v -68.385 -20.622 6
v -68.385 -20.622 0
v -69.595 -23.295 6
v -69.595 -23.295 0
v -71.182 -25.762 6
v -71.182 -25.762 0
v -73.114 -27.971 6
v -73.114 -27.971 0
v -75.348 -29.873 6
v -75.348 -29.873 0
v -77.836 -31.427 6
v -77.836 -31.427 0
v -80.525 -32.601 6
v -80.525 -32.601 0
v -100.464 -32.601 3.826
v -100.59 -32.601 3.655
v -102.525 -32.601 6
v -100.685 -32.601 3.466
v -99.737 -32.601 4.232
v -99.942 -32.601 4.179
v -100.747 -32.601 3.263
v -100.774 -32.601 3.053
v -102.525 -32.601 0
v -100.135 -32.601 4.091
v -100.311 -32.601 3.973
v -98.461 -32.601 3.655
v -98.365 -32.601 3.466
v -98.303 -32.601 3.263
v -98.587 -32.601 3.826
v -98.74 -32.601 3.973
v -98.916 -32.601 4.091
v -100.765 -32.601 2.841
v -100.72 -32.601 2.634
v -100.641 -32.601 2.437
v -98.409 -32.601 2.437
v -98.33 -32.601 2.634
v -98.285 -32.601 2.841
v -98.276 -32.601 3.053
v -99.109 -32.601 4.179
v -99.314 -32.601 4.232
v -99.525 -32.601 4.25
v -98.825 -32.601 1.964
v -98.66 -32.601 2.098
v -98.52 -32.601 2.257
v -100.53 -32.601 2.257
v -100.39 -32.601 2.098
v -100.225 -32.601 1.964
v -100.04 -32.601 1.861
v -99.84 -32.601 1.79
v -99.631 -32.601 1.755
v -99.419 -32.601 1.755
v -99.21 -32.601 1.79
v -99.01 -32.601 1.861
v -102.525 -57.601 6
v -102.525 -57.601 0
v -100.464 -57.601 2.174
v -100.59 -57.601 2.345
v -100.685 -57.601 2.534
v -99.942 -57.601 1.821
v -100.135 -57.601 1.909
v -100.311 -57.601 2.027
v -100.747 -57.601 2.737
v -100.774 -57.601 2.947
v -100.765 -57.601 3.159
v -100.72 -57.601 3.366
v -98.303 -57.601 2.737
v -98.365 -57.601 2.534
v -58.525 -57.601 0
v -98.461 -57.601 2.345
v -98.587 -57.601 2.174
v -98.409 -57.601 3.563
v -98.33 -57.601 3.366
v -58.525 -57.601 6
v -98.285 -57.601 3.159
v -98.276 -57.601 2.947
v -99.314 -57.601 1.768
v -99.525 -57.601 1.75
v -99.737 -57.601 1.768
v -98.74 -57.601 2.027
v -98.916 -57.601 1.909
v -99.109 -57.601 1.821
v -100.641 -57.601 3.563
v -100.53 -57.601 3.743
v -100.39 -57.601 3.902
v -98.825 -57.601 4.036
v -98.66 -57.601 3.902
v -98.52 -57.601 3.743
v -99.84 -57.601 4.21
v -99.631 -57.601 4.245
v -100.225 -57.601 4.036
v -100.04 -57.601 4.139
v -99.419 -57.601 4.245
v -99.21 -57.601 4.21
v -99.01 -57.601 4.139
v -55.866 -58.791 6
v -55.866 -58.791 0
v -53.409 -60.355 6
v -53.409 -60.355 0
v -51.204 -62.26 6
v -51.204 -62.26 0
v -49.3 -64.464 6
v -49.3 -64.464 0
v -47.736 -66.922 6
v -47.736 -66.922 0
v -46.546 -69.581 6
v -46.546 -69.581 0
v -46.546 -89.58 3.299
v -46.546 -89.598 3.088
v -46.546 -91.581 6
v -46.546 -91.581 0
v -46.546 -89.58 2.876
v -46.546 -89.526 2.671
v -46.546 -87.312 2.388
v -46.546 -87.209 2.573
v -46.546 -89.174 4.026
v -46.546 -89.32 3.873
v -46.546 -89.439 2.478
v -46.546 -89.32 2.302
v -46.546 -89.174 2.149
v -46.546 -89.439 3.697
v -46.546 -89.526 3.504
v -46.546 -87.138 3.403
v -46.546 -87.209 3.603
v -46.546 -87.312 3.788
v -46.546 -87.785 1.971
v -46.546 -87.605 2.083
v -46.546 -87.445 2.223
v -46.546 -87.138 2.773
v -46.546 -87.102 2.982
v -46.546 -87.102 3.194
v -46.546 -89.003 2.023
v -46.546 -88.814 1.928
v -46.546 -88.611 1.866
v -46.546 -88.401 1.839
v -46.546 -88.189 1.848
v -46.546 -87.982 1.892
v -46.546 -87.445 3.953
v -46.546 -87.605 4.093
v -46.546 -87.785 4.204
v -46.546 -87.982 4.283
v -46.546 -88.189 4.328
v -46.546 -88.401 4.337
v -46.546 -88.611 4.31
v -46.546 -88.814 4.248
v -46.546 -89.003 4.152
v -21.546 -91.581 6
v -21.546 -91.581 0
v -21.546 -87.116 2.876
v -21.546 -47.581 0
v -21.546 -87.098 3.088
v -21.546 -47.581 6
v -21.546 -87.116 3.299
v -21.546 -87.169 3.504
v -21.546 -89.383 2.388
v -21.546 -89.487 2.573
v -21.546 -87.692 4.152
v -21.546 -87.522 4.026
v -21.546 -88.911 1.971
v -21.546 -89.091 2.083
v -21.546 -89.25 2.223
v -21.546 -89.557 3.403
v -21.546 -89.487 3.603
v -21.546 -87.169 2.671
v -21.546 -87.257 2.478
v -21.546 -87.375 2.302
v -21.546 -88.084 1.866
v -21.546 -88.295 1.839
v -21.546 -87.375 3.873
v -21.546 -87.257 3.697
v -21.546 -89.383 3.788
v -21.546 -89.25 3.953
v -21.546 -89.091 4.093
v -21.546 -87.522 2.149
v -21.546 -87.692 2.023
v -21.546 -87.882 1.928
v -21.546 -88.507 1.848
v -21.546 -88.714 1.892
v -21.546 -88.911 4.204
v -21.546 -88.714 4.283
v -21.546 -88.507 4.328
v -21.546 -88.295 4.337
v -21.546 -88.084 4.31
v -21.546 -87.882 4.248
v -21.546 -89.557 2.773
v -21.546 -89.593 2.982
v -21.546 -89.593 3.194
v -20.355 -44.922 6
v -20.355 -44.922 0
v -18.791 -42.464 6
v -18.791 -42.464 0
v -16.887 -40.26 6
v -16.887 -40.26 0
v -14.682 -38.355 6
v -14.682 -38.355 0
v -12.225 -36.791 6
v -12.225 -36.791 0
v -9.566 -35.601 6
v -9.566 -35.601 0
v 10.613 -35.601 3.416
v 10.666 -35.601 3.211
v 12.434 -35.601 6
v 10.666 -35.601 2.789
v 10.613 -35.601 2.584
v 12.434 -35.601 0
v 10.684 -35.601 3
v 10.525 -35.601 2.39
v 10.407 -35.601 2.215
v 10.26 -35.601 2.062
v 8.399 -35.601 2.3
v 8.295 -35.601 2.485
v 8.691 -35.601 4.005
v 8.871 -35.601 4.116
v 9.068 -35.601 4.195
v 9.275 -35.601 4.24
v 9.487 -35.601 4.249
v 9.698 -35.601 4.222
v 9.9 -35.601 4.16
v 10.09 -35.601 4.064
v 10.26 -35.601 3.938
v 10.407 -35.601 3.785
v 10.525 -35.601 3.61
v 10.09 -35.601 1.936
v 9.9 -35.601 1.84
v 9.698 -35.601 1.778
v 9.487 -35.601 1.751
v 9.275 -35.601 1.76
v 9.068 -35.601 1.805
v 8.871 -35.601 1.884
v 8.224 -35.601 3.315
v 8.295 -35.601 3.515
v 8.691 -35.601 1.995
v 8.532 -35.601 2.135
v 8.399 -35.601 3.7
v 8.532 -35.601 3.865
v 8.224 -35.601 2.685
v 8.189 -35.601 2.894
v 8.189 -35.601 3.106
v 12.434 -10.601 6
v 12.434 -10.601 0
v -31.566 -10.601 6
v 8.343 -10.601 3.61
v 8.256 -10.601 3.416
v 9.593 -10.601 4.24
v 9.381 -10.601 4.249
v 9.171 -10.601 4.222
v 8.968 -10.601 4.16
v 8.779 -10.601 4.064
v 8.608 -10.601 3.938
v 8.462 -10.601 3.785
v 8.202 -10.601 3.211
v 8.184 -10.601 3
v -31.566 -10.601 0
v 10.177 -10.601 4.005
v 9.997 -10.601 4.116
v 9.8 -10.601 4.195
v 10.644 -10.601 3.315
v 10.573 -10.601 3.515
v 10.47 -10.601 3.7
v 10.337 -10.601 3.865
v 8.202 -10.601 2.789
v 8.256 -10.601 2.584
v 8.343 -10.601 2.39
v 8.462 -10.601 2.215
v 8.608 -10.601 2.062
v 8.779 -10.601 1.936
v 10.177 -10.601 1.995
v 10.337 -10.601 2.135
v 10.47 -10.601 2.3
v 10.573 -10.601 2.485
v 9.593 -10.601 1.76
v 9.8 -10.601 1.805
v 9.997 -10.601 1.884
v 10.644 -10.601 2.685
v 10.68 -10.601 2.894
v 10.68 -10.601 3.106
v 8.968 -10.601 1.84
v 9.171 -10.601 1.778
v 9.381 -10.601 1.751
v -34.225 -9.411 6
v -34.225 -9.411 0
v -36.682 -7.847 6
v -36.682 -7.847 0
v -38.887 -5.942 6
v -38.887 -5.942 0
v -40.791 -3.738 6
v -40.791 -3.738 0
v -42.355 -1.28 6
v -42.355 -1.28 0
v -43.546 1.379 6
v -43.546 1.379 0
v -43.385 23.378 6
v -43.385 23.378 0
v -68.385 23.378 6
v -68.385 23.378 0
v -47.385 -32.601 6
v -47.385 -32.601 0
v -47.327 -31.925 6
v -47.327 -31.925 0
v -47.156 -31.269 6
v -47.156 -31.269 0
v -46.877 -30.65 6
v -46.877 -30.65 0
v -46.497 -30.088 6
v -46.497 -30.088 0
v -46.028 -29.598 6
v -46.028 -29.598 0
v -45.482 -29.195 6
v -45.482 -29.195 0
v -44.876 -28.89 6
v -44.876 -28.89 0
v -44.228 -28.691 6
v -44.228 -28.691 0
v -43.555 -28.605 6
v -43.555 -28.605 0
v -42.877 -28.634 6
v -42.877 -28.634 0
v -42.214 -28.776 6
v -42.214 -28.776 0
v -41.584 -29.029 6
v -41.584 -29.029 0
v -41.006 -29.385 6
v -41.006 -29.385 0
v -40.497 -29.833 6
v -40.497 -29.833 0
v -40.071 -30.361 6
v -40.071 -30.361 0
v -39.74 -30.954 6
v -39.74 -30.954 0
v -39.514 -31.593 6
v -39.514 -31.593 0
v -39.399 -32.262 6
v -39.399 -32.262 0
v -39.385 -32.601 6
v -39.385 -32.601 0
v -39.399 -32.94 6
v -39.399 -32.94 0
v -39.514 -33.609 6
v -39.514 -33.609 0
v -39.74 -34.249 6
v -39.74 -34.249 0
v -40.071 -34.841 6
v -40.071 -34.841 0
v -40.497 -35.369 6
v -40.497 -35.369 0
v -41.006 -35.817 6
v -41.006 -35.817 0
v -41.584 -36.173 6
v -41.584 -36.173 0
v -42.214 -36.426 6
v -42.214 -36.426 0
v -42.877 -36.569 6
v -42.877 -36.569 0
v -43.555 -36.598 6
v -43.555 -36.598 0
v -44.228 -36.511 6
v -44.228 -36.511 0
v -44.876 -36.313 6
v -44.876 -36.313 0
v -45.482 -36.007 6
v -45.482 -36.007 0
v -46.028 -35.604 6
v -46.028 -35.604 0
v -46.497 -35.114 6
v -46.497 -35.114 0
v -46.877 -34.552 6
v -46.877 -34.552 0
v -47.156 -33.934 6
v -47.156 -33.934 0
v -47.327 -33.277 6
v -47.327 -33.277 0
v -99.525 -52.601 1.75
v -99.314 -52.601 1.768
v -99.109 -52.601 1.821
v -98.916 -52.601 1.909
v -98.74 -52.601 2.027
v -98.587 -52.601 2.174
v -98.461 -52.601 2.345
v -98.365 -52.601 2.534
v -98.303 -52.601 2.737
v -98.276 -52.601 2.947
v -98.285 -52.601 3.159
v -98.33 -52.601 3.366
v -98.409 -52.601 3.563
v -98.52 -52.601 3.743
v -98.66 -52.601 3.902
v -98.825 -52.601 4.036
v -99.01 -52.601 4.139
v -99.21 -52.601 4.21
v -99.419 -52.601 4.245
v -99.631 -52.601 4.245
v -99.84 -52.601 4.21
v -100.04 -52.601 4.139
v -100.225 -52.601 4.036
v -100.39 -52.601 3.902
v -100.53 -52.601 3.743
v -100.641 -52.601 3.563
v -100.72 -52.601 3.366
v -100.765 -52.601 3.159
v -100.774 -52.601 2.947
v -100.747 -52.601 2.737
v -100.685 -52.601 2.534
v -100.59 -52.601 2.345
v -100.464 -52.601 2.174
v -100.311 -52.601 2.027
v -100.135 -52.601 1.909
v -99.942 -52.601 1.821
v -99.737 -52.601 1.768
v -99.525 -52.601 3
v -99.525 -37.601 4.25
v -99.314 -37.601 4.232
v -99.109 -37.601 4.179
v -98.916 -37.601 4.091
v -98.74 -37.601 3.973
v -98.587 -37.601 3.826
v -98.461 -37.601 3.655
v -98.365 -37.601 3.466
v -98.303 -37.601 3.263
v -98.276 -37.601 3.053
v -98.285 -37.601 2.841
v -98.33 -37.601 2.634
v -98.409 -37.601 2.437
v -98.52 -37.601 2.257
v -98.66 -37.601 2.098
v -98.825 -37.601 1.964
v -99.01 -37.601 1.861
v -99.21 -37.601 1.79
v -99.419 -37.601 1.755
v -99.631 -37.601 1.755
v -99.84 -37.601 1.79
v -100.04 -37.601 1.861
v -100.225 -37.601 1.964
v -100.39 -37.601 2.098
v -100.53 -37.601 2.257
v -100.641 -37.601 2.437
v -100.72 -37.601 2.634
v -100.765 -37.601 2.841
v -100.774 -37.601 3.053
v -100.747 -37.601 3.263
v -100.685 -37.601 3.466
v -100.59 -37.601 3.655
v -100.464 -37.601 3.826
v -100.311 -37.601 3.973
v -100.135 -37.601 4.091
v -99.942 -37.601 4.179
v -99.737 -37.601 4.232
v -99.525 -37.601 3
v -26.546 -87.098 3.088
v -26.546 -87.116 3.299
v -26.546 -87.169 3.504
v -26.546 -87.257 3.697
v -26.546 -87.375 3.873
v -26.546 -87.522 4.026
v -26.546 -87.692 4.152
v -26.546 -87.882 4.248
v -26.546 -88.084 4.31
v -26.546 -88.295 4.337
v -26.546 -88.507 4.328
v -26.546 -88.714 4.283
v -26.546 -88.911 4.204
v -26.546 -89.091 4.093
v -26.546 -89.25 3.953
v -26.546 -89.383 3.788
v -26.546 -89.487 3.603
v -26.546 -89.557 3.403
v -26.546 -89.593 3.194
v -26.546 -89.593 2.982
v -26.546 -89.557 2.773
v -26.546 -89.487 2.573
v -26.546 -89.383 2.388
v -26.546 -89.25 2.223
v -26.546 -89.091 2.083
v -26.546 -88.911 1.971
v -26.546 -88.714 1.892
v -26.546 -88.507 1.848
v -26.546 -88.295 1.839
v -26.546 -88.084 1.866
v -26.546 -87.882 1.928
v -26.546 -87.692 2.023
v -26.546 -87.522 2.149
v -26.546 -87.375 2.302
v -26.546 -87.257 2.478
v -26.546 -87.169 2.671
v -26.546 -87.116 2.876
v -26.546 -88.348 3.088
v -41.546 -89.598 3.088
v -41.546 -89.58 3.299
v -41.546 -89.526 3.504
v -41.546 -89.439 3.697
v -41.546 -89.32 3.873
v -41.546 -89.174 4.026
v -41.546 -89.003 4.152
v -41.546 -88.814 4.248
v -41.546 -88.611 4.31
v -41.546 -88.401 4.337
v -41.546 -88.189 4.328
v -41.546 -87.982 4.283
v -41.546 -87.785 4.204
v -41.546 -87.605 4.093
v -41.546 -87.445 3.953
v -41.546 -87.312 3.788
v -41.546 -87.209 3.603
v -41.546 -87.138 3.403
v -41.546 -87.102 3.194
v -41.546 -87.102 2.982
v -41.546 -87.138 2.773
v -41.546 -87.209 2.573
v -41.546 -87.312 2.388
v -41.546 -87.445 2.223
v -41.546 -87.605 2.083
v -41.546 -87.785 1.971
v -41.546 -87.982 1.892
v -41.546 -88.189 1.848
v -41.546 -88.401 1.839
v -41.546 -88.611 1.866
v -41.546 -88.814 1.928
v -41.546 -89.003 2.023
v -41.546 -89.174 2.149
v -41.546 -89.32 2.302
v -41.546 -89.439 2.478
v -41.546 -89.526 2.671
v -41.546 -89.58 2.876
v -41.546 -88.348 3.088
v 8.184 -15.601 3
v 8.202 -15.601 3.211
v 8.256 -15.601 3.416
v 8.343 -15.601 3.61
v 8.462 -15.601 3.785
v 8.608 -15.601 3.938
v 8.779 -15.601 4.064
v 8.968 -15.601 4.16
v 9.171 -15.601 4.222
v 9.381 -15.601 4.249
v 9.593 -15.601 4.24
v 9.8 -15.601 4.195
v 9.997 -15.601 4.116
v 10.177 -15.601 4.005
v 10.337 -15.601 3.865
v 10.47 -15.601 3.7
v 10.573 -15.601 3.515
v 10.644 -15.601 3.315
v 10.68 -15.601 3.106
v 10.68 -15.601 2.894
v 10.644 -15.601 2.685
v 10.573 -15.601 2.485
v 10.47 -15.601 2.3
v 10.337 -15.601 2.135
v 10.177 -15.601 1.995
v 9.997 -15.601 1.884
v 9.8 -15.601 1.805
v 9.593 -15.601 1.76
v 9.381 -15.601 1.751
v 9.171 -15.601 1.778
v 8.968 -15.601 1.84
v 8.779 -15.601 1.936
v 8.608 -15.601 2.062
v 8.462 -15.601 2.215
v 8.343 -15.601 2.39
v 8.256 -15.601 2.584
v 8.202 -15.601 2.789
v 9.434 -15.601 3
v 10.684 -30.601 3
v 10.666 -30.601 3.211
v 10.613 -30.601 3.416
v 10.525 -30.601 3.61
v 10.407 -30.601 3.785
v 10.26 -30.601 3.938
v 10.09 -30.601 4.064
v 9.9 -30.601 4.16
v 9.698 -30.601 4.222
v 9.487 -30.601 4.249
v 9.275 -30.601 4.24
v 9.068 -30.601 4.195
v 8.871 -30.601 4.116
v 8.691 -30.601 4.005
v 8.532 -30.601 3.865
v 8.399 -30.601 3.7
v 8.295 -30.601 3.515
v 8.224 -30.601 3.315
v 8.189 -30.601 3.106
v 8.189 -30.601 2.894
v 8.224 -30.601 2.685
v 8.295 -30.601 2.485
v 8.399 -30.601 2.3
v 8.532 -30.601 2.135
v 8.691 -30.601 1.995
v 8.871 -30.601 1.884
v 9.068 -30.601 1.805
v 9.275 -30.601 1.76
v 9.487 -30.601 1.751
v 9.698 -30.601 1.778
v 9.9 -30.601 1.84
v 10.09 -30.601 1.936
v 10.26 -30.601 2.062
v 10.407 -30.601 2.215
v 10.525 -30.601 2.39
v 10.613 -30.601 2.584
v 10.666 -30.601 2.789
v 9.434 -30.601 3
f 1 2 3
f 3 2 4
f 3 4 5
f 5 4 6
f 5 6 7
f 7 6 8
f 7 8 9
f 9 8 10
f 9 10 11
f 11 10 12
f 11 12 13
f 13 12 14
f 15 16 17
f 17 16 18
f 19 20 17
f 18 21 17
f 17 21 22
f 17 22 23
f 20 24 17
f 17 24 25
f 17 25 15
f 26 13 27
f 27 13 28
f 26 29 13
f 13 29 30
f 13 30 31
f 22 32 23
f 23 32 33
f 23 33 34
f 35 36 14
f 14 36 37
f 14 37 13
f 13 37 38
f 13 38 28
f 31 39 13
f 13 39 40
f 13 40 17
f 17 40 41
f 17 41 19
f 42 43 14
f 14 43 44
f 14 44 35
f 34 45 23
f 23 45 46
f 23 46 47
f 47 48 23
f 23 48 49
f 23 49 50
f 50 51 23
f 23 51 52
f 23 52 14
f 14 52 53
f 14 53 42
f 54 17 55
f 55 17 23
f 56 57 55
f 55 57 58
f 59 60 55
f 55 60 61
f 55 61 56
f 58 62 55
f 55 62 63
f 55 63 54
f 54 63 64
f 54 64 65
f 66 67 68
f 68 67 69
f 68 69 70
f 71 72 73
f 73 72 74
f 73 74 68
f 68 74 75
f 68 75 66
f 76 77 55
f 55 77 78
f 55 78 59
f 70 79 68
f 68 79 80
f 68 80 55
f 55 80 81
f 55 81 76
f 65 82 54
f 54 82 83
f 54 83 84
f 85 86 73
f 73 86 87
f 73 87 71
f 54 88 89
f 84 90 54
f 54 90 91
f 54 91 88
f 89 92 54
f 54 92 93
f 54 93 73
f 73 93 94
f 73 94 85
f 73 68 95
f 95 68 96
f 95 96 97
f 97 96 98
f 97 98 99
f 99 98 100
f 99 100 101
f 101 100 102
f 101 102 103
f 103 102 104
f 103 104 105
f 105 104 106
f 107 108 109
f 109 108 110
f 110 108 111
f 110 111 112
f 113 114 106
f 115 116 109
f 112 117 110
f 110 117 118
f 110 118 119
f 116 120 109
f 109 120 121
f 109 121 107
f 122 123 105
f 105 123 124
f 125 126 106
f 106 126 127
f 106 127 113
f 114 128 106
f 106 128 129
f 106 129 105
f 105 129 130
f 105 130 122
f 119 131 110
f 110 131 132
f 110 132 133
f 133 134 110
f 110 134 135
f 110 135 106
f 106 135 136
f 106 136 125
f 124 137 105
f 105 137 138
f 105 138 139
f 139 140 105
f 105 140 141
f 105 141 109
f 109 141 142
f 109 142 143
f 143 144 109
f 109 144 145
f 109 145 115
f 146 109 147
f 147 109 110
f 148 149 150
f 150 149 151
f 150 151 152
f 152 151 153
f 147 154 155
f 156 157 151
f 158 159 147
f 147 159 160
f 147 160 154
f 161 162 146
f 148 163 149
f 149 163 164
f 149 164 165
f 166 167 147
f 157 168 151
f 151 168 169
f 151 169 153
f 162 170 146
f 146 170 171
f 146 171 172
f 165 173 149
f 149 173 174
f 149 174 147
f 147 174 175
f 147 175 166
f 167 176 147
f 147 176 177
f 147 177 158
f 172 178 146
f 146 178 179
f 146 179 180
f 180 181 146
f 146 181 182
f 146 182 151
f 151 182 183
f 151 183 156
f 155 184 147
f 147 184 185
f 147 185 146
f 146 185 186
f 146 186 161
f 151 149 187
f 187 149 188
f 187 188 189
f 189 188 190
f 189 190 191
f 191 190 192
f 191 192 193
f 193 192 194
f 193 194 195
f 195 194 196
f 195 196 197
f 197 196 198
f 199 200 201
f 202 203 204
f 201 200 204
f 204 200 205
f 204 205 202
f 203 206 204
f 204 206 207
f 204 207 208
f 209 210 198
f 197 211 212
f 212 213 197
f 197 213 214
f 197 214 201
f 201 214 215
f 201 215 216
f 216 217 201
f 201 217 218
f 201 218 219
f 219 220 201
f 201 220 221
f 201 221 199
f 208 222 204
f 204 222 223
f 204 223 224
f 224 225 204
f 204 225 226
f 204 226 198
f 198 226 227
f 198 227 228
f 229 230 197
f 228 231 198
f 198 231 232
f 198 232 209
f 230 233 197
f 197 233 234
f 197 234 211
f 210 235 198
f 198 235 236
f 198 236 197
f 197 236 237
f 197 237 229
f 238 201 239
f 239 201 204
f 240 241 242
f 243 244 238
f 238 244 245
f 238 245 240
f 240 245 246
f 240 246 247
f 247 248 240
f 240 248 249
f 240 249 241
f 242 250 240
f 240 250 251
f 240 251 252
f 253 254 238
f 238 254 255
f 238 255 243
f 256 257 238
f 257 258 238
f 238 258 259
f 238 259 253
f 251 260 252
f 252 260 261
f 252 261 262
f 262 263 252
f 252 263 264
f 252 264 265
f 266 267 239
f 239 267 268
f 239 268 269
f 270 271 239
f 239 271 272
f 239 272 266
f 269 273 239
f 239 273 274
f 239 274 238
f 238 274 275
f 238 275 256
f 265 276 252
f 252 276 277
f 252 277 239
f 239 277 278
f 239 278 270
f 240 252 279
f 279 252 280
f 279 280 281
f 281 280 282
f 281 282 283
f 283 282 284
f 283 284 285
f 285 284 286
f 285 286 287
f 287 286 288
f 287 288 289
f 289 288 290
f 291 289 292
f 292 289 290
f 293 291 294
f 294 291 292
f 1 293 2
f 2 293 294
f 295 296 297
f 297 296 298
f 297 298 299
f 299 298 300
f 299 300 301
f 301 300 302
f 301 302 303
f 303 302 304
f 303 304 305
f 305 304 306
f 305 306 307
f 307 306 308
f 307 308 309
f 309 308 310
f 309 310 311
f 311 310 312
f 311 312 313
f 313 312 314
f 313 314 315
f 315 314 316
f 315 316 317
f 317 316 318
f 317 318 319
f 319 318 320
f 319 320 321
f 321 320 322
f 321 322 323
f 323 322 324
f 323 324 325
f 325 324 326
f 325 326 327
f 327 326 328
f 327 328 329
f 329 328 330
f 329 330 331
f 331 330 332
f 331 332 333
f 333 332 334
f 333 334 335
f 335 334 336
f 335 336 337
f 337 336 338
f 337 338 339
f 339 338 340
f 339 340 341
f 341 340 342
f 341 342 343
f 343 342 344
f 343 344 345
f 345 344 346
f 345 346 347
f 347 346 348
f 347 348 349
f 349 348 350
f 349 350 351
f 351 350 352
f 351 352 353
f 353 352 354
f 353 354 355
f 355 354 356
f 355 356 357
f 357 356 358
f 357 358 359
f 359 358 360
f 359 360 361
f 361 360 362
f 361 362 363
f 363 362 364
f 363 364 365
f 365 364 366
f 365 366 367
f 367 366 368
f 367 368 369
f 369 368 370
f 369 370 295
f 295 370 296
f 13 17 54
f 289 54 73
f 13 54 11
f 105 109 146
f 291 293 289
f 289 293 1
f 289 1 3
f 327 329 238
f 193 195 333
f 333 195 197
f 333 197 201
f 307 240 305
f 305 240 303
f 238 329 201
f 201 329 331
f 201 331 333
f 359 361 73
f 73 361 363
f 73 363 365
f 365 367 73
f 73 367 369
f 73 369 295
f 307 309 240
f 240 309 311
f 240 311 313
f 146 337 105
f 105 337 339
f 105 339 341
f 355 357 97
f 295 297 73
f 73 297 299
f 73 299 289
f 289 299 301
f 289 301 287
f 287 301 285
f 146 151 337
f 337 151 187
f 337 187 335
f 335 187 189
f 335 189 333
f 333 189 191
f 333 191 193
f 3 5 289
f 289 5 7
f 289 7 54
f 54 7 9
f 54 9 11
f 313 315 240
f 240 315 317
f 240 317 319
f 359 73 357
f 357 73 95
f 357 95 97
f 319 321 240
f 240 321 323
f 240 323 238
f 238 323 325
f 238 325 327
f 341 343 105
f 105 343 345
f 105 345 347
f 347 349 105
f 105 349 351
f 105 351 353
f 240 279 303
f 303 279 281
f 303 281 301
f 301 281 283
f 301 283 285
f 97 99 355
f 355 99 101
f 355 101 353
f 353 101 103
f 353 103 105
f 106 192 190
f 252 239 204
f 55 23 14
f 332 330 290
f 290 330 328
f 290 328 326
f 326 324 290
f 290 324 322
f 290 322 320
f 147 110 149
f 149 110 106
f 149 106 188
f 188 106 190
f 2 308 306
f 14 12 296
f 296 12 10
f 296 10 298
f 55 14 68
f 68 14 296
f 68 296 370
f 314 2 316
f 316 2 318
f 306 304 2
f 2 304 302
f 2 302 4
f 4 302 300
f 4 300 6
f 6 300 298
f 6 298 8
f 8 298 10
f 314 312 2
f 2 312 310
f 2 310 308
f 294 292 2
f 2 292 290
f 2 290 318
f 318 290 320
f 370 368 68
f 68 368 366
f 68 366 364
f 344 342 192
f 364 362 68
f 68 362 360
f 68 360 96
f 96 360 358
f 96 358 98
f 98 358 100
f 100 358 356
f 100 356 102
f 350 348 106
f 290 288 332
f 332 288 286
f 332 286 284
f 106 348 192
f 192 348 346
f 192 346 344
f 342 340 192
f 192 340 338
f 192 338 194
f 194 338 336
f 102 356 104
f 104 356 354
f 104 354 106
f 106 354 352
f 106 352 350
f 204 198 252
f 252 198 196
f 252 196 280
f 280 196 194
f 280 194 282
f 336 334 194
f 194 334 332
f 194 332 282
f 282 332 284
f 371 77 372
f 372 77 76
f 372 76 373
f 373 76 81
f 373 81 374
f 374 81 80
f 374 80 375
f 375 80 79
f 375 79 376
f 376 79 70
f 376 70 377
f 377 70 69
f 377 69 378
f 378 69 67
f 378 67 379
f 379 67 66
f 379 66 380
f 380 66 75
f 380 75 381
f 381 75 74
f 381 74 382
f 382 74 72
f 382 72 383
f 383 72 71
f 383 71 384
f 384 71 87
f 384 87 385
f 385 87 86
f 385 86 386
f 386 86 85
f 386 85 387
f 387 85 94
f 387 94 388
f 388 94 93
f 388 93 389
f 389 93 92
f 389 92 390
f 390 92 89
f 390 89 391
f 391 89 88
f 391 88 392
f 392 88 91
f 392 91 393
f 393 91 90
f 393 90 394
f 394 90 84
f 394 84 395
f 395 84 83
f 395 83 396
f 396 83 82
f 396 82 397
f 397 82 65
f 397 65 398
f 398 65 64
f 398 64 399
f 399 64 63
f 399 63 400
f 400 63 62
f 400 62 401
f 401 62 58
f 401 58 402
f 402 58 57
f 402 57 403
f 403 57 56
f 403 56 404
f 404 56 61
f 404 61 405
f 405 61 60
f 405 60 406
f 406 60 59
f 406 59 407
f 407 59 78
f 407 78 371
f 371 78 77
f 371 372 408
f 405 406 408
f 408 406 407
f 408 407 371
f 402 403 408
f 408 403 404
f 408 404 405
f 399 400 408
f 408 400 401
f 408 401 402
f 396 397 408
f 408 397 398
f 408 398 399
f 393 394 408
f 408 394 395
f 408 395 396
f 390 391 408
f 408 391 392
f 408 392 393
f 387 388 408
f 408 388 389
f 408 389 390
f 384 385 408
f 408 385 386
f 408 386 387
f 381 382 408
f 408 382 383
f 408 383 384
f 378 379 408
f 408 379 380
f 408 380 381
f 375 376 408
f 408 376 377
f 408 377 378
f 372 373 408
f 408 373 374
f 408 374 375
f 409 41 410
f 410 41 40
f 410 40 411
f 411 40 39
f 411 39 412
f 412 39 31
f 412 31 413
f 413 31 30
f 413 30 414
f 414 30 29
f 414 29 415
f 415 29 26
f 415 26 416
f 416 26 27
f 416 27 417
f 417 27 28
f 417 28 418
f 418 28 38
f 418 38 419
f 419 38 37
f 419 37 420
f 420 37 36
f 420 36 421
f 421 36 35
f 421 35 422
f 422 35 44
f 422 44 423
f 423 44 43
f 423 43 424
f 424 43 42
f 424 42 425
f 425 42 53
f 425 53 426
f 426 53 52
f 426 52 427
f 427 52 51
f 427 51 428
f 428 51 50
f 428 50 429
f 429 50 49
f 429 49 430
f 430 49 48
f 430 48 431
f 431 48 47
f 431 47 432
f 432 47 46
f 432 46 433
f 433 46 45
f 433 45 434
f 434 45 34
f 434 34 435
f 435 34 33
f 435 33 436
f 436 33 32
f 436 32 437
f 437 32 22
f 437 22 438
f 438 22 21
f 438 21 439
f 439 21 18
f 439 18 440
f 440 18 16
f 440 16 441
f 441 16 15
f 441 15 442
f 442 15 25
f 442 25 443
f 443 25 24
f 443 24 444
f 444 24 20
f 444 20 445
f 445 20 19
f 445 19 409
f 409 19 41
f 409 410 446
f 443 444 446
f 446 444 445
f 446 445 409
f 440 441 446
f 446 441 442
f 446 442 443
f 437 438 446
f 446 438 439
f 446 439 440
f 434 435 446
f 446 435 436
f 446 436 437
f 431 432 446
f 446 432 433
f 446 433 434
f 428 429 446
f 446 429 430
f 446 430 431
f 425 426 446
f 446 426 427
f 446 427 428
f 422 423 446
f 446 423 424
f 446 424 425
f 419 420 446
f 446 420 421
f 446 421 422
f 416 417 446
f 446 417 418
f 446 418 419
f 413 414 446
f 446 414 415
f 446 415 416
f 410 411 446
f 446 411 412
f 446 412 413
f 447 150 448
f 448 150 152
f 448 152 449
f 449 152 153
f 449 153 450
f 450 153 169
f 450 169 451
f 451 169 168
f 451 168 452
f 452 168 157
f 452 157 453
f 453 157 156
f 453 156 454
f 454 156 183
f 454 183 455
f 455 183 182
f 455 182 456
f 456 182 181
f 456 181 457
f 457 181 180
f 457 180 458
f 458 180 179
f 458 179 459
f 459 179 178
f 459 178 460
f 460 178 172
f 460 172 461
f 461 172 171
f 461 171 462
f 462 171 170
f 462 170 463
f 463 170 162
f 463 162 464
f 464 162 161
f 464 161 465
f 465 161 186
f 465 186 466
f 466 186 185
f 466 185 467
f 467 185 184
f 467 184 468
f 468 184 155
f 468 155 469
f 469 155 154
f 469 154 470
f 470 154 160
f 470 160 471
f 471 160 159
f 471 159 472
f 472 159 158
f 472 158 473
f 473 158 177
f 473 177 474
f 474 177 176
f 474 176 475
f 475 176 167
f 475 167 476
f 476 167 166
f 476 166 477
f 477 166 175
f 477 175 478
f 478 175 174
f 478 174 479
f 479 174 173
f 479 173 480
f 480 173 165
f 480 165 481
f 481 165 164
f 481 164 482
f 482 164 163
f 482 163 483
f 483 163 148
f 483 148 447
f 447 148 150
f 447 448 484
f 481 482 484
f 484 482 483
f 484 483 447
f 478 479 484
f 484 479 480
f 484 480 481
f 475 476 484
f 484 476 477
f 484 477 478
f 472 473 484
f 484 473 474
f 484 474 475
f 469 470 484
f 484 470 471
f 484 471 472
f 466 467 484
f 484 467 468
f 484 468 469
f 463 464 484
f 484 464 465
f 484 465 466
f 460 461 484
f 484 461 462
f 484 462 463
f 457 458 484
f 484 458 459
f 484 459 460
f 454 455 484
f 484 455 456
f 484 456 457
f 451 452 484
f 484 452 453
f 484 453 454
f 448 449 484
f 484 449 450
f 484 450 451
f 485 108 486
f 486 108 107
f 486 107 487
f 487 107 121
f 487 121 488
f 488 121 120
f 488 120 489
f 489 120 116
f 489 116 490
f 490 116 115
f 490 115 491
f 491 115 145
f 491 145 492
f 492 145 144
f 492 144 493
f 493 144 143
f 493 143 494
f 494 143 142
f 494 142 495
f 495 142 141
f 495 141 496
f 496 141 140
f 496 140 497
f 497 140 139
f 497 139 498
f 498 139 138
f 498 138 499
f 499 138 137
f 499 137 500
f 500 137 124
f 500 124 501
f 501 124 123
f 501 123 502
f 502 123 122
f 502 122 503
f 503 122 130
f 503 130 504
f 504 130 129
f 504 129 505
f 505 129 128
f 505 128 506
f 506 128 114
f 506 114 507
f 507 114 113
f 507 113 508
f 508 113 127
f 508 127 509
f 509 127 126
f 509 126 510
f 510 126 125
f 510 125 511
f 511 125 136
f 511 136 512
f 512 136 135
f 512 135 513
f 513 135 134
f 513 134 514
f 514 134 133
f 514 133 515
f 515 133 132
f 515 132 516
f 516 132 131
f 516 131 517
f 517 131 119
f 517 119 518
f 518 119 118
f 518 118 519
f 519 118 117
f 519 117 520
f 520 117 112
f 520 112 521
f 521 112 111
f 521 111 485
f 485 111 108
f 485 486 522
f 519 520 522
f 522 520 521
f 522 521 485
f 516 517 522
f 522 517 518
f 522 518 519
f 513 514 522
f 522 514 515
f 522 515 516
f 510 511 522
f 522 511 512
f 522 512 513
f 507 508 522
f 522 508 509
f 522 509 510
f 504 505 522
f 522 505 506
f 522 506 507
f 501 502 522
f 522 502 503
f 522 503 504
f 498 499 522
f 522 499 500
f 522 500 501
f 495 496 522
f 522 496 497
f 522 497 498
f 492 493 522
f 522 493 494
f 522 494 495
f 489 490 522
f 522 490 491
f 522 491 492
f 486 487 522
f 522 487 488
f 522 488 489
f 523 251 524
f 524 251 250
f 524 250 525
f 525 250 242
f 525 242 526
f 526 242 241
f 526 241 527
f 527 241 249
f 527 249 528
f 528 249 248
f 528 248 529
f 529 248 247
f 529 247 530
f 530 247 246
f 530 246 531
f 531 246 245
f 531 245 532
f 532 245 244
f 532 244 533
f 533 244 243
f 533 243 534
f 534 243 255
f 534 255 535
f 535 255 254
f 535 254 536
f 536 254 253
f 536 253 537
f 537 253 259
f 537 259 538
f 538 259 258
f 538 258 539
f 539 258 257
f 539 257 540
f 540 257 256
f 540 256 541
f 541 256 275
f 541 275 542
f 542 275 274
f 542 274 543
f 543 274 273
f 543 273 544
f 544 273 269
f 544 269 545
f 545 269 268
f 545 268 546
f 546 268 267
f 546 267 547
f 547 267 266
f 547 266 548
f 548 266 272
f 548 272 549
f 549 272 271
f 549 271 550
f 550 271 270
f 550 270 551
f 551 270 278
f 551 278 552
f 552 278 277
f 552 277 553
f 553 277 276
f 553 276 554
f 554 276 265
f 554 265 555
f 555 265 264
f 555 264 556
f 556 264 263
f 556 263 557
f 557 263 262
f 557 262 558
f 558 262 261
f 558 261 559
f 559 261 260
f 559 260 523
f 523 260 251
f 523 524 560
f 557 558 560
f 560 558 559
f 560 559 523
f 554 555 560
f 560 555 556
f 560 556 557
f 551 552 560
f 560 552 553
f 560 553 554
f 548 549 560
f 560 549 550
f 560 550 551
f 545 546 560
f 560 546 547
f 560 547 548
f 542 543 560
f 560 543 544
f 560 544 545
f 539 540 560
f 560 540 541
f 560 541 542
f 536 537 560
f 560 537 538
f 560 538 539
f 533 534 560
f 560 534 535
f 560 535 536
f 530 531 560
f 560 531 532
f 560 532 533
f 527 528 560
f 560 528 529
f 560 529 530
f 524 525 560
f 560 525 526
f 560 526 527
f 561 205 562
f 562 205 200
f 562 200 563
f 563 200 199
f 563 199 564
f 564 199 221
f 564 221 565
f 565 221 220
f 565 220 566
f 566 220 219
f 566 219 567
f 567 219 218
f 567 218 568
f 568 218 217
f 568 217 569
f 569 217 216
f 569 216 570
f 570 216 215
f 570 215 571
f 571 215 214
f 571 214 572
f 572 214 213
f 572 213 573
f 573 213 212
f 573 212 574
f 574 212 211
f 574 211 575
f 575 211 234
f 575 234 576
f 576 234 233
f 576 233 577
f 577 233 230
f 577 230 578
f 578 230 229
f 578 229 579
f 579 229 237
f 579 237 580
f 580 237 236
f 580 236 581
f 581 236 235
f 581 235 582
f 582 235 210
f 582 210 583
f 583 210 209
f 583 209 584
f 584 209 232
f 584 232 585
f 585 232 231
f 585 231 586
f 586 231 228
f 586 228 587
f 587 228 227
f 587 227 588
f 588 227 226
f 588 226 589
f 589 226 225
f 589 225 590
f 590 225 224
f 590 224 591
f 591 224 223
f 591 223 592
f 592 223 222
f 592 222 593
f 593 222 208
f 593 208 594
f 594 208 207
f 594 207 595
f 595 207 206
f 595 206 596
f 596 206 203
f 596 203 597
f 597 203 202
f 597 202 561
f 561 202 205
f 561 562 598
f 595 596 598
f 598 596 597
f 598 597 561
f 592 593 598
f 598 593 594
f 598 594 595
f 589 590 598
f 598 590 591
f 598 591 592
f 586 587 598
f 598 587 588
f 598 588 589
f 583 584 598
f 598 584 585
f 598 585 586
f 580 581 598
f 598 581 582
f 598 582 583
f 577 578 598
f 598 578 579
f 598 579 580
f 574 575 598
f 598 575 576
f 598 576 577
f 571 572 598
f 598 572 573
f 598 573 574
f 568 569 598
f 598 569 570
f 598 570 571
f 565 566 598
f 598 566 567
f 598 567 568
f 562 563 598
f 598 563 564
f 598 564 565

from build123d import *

# Parameters (mm, degrees)
SKETCH_2_R          = 4
EXTRUDE_1_DEPTH     = 6
SKETCH_3_R          = 1.25
CUT_EXTRUDE_1_DEPTH = 5
CUT_EXTRUDE_START   = -5
SKETCH_4_R          = 1.25
CUT_EXTRUDE_2_DEPTH = 5
SKETCH_5_R          = 1.25
CUT_EXTRUDE_3_DEPTH = 5
SKETCH_6_R          = 1.25
CUT_EXTRUDE_4_DEPTH = 5
SKETCH_8_R          = 1.25
CUT_EXTRUDE_5_DEPTH = 5
SKETCH_9_R          = 1.25
CUT_EXTRUDE_6_DEPTH = 5


with BuildPart() as part:
    # 스케치2 → 보스-돌출1 (new body)
    with BuildSketch(Plane.XY):
        with BuildLine():
            Line((-102.525284978, -57.601148056), (-102.525284978, -32.601148056))
            Line((-102.525284978, -32.601148056), (-80.525284978, -32.601148056))
            ThreePointArc((-80.525284978, -32.601148056), (-73.11411316, -27.970582536), (-68.384824454, -20.622015799))
            Line((-68.384824454, -20.622015799), (-68.384824454, 23.377984201))
            Line((-68.384824454, 23.377984201), (-43.384824454, 23.377984201))
            Line((-43.384824454, 23.377984201), (-43.545565494, 1.378571429))
            ThreePointArc((-43.545565494, 1.378571429), (-38.886846868, -5.94242943), (-31.565846009, -10.601148056))
            Line((-31.565846009, -10.601148056), (12.434153991, -10.601148056))
            Line((12.434153991, -10.601148056), (12.434153991, -35.601148056))
            Line((12.434153991, -35.601148056), (-9.565846009, -35.601148056))
            ThreePointArc((-9.565846009, -35.601148056), (-16.886846868, -40.259866682), (-21.545565494, -47.580867541))
            Line((-21.545565494, -47.580867541), (-21.545565494, -91.580867541))
            Line((-21.545565494, -91.580867541), (-46.545565494, -91.580867541))
            Line((-46.545565494, -91.580867541), (-46.545565494, -69.580867541))
            ThreePointArc((-46.545565494, -69.580867541), (-51.20428412, -62.259866682), (-58.525284978, -57.601148056))
            Line((-58.525284978, -57.601148056), (-102.525284978, -57.601148056))
        make_face()
        with Locations((-43.384824454, -32.601148056)):
            Circle(SKETCH_2_R, mode=Mode.SUBTRACT)
    extrude(amount=EXTRUDE_1_DEPTH)

    # 스케치3 → 컷-돌출1 (cut)
    with BuildSketch(Plane(origin=(0, -57.601148056, 0), x_dir=(-1, 0, 0), z_dir=(0, -1, 0))):
        with Locations(Location((99.525284978, -3, 0), (0, 0, 90))):
            Circle(SKETCH_3_R)
    extrude(amount=-CUT_EXTRUDE_1_DEPTH, mode=Mode.SUBTRACT)

    # 스케치4 → 컷-돌출2 (cut)
    with BuildSketch(Plane(origin=(0, -32.601148056, 0), x_dir=(1, 0, 0), z_dir=(0, 1, 0)).offset(CUT_EXTRUDE_START)):
        with Locations(Location((-99.525284978, -3, 0), (0, 0, 90))):
            Circle(SKETCH_4_R)
    extrude(amount=CUT_EXTRUDE_2_DEPTH, mode=Mode.SUBTRACT)

    # 스케치5 → 컷-돌출3 (cut)
    with BuildSketch(Plane(origin=(-21.545565494, 0, 0), x_dir=(0, 0, -1), z_dir=(1, 0, 0))):
        with Locations(Location((-3.087647422, -88.347802665, 0), (0, 0, 90))):
            Circle(SKETCH_5_R)
    extrude(amount=-CUT_EXTRUDE_3_DEPTH, mode=Mode.SUBTRACT)

    # 스케치6 → 컷-돌출4 (cut)
    with BuildSketch(Plane.ZY.offset(46.545565494).offset(CUT_EXTRUDE_START)):
        with Locations(Location((3.087647422, -88.347802665, 0), (0, 0, 90))):
            Circle(SKETCH_6_R)
    extrude(amount=CUT_EXTRUDE_4_DEPTH, mode=Mode.SUBTRACT)

    # 스케치8 → 컷-돌출5 (cut)
    with BuildSketch(Plane(origin=(0, -10.601148056, 0), x_dir=(1, 0, 0), z_dir=(0, 1, 0))):
        with Locations(Location((9.434153991, -3, 0), (0, 0, 180))):
            Circle(SKETCH_8_R)
    extrude(amount=-CUT_EXTRUDE_5_DEPTH, mode=Mode.SUBTRACT)

    # 스케치9 → 컷-돌출6 (cut)
    with BuildSketch(Plane(origin=(0, -35.601148056, 0), x_dir=(-1, 0, 0), z_dir=(0, -1, 0)).offset(CUT_EXTRUDE_START)):
        with Locations((-9.434153991, -3)):
            Circle(SKETCH_9_R)
    extrude(amount=CUT_EXTRUDE_6_DEPTH, mode=Mode.SUBTRACT)


solid = part.part
